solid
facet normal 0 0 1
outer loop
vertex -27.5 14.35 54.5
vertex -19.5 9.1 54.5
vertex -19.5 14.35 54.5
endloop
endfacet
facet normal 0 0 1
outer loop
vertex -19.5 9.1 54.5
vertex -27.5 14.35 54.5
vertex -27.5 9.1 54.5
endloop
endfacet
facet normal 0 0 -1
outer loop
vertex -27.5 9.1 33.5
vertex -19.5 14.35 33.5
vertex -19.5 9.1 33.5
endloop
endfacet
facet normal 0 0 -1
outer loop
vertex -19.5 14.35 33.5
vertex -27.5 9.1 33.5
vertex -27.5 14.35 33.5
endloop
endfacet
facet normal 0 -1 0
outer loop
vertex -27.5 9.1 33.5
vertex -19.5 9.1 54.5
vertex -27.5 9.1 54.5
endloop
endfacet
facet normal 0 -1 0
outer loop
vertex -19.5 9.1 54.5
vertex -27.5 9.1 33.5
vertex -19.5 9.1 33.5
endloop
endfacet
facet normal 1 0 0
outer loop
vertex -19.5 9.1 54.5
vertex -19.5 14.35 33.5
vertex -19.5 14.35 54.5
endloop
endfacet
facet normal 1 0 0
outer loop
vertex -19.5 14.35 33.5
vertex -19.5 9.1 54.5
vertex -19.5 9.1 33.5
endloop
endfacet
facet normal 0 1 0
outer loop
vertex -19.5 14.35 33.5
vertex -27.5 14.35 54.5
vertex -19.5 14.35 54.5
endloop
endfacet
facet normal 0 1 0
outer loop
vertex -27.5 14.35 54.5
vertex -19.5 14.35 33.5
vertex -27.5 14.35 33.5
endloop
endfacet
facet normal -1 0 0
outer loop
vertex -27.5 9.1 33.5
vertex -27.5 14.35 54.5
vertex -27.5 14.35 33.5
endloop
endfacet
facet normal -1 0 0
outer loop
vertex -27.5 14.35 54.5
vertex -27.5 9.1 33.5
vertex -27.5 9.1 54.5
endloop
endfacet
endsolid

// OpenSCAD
// file: D:/Projects/assembly-workshop/outputs/Screen_5in_SCR5-G_2026-10-30/checks/geometry.scad
// SCR5-G; mm; FRONT view: X right, Z up, Y into rack. Glass/plate front Y=0.
// Measured values: work/screen-5in/Dimensions.md. Physical fit/strength UNKNOWN.
part="plate";
DROP=0.45; // coupon winner can be substituted here; all three pins use this DROP
LIP=0.8; LIP_ON=true;
LIP_EDGES=[true,true,false,false]; // left,right,bottom,top; Brian: side lips only, cosmetic
FRAME_STEP=1.5; // measured glass-edge inset to metal LCD frame, left/right only
SHIM=0; // moves rear frame seat and plate-boss mating face back
$fn=48;
GCX=33; GCZ=41.5; PW=252; PH=88.8; PT=4;
GW=120.7; GH=77.2; CLEAR=0.2; WW=GW+2*CLEAR; WH=GH+2*CLEAR;
SEAT=13.3+SHIM; FT=3;
SO=[56.45,34]; BTN_X=[45.5,35.5,25.5];
PCB_TOP=38; GAP=0.10; LEAF_T=0.8;
HOLE=[3.4,40.3,44.7];
BX=[GCX-68,GCX+68]; BZ=[10,72];
// DSI connector X extent is unmeasured: conservative assumed 8 mm inward from PCB edge.
DSI=[GCX-60.5,9.1,GCZ-38+30,8,5.25,21];
module xz(y,d){translate([0,y+d,0])rotate([90,0,0])linear_extrude(d)children();}
// rr/rack_slots copied from SCR5-F; same exact slot centres, outline shifted -0.05 Z to centre 44.4.
module rr(w,h,r){hull()for(x=[-w/2+r,w/2-r],z=[-h/2+r,h/2-r])translate([x,z])circle(r=r);}
module rack_slots(){for(x=[-118.2625,118.2625],z=[6.323,38.127,50.773,82.577])translate([x,z])hull()for(dx=[-1.5,1.5])translate([dx,0])circle(d=7);}
module cyl_y(x,y,z,d,h){translate([x,y,z])rotate([-90,0,0])cylinder(d=d,h=h);}
module window_cut(){
  xz(-0.02,4.04)translate([GCX,GCZ])square([WW,WH],center=true);
  // 0.3 x 45-degree chamfer, square corners, front only.
  translate([GCX,0.3,GCZ])rotate([90,0,0])
    linear_extrude(height=0.3,scale=[(WW+0.6)/WW,(WH+0.6)/WH])square([WW,WH],center=true);
}
module lips(){
  // Cosmetic side ledges only; rear frame/standoffs set depth and retain the screen.
  if(LIP_ON)for(i=[0:3])if(LIP_EDGES[i]){
    if(i<2)translate([GCX+(i==0?-WW/2:WW/2-LIP),2.5,GCZ-GH/2+4])cube([LIP,0.8,GH-8]);
    else translate([GCX-GW/2+4,2.5,GCZ+(i==2?-WH/2:WH/2-LIP)])cube([GW-8,0.8,LIP]);
  }
}
// Leaf/nub/bump geometry copied from SCR5-WP-A, translated to this glass centre.
module leaves(){for(x=BTN_X)translate([GCX+x-1.5,0,GCZ]){
  translate([0,0,PCB_TOP+GAP+0.9+0.1])cube([3,11.8,LEAF_T]);
  translate([0,10.2,PCB_TOP+GAP])cube([3,1.4,1.0+LEAF_T/2]);
  translate([0,10.4,PCB_TOP+GAP+1.0+LEAF_T])cube([3,1.0,0.9]);
}}
module plate(){difference(){union(){
  difference(){xz(0,PT)translate([0,PH/2])rr(PW,PH,2.5);window_cut();}
  for(x=BX,z=BZ)cyl_y(x,3.9,z,8,SEAT-3.9);
  leaves(); lips();
 }
 xz(-0.02,4.04)rack_slots();
 for(x=BTN_X)translate([GCX+x-HOLE[0]/2,-0.02,GCZ+HOLE[1]])cube([HOLE[0],SEAT+FT+0.04,HOLE[2]-HOLE[1]]);
 // Printed-in screw pilots (no heat-set OD assumption): nominal M2.5, fit UNKNOWN.
 for(x=BX,z=BZ)cyl_y(x,SEAT-6,z,2.1,6.02);
 // Rear engraving, 0.5 deep, left field.
 xz(3.5,0.52)translate([-75,40])mirror([1,0])text("SCR5-G",size=6,halign="center",font="Liberation Sans:style=Bold");
}}
module frame_blank(){
  // C-shaped perimeter; no material across the board centre / touch FPC.
  xz(SEAT,FT)translate([GCX,GCZ])difference(){square([132,76],center=true);square([116,60],center=true);}
  for(sx=[-1,1],sz=[-1,1])cyl_y(GCX+sx*SO[0],SEAT,GCZ+sz*SO[1],9,FT);
  for(x=BX,z=BZ)hull(){cyl_y(x,SEAT,z,8,FT);cyl_y(GCX+(x<GCX?-62:62),SEAT,z,8,FT);}
}
module dsi_keepout(){translate([DSI[0]-3,DSI[1]-3,DSI[2]-3])cube([DSI[3]+6,DSI[4]+6,DSI[5]+6]);}
module ribbon_route(){
  // Open left/up corridor 18 mm wide; extends past top of plate.
  translate([GCX-84,6.1,GCZ-11])cube([18,24,65]);
  translate([GCX-84,6.1,GCZ-11])cube([32,24,27]);
}
module frame(){difference(){frame_blank();dsi_keepout();ribbon_route();
 for(sx=[-1,1],sz=[-1,1])cyl_y(GCX+sx*SO[0],SEAT-0.02,GCZ+sz*SO[1],2.8,FT+0.04);
 for(x=BX,z=BZ)cyl_y(x,SEAT-0.02,z,2.8,FT+0.04);
}}
// Pin polygon/cap/notch/dot design copied unchanged from SCR5-WP-A.
module pin(d,dots){s=2*d+0.5;difference(){union(){
 translate([-1.5,0,0])rotate([90,0,90])linear_extrude(3)polygon([
 [-s-0.02,40.5],[10.2,40.5],[10.2,41.0],[11.5,41.0],[11.5+2*d,41.0-d],[15,41.0-d],[15,44.5],[-s-0.02,44.5]]);
 translate([-2.5,-s-1.5,39.6])cube([5,1.5,5.8]);
 }for(i=[0:dots-1])translate([(i-(dots-1)/2)*1.4,-s-1.5-0.01,43.5])rotate([-90,0,0])cylinder(d=0.9,h=0.4);}}
module placed_pin(i){translate([GCX+BTN_X[i],0,GCZ])pin(DROP,i+1);}
// Measured layers: cover glass 0.9 + second glass 1.6, metal frame 3.0,
// open gap 2.0, PCB 1.6. Metal frame inset ~1.5 at LEFT/RIGHT only.
// PCB centred under glass and full metal-frame top/bottom extent remain UNKNOWN.
module glass(){translate([GCX-GW/2,0,GCZ-GH/2])cube([GW,2.5,GH]);}
module lcd(){
  translate([GCX-GW/2+FRAME_STEP,2.5,GCZ-GH/2])cube([GW-2*FRAME_STEP,3.0,GH]);
}
module pcb(){translate([GCX-60.5,7.5,GCZ-38])cube([121,1.6,76]);}
module standoffs(){for(sx=[-1,1],sz=[-1,1])difference(){cyl_y(GCX+sx*SO[0],9.1,GCZ+sz*SO[1],5.5,4.2);cyl_y(GCX+sx*SO[0],9.08,GCZ+sz*SO[1],2.5,4.24);}}
module buttons(){for(x=BTN_X){
 translate([GCX+x-3.5,9.1,GCZ+38-3.4])cube([7,3.6,2.4]);
 translate([GCX+x-1.5,9.1,GCZ+37])cube([3,3.6,1]);
}}
module dsi(){translate([DSI[0],DSI[1],DSI[2]])cube([DSI[3],DSI[4],DSI[5]]);}
module touch(){translate([GCX-10,9.1,GCZ-5])cube([20,2,10]);} // lateral extent unmeasured
module dummy(){glass();lcd();pcb();standoffs();buttons();dsi();touch();}
module assembly(){color("gray")plate();color("orange")frame();for(i=[0:2])color("cyan")placed_pin(i);color([0.2,0.3,0.4,0.4])dummy();}
// main file
include <D:/Projects/assembly-workshop/outputs/Screen_5in_SCR5-G_2026-10-30/checks/geometry.scad>
dsi();
